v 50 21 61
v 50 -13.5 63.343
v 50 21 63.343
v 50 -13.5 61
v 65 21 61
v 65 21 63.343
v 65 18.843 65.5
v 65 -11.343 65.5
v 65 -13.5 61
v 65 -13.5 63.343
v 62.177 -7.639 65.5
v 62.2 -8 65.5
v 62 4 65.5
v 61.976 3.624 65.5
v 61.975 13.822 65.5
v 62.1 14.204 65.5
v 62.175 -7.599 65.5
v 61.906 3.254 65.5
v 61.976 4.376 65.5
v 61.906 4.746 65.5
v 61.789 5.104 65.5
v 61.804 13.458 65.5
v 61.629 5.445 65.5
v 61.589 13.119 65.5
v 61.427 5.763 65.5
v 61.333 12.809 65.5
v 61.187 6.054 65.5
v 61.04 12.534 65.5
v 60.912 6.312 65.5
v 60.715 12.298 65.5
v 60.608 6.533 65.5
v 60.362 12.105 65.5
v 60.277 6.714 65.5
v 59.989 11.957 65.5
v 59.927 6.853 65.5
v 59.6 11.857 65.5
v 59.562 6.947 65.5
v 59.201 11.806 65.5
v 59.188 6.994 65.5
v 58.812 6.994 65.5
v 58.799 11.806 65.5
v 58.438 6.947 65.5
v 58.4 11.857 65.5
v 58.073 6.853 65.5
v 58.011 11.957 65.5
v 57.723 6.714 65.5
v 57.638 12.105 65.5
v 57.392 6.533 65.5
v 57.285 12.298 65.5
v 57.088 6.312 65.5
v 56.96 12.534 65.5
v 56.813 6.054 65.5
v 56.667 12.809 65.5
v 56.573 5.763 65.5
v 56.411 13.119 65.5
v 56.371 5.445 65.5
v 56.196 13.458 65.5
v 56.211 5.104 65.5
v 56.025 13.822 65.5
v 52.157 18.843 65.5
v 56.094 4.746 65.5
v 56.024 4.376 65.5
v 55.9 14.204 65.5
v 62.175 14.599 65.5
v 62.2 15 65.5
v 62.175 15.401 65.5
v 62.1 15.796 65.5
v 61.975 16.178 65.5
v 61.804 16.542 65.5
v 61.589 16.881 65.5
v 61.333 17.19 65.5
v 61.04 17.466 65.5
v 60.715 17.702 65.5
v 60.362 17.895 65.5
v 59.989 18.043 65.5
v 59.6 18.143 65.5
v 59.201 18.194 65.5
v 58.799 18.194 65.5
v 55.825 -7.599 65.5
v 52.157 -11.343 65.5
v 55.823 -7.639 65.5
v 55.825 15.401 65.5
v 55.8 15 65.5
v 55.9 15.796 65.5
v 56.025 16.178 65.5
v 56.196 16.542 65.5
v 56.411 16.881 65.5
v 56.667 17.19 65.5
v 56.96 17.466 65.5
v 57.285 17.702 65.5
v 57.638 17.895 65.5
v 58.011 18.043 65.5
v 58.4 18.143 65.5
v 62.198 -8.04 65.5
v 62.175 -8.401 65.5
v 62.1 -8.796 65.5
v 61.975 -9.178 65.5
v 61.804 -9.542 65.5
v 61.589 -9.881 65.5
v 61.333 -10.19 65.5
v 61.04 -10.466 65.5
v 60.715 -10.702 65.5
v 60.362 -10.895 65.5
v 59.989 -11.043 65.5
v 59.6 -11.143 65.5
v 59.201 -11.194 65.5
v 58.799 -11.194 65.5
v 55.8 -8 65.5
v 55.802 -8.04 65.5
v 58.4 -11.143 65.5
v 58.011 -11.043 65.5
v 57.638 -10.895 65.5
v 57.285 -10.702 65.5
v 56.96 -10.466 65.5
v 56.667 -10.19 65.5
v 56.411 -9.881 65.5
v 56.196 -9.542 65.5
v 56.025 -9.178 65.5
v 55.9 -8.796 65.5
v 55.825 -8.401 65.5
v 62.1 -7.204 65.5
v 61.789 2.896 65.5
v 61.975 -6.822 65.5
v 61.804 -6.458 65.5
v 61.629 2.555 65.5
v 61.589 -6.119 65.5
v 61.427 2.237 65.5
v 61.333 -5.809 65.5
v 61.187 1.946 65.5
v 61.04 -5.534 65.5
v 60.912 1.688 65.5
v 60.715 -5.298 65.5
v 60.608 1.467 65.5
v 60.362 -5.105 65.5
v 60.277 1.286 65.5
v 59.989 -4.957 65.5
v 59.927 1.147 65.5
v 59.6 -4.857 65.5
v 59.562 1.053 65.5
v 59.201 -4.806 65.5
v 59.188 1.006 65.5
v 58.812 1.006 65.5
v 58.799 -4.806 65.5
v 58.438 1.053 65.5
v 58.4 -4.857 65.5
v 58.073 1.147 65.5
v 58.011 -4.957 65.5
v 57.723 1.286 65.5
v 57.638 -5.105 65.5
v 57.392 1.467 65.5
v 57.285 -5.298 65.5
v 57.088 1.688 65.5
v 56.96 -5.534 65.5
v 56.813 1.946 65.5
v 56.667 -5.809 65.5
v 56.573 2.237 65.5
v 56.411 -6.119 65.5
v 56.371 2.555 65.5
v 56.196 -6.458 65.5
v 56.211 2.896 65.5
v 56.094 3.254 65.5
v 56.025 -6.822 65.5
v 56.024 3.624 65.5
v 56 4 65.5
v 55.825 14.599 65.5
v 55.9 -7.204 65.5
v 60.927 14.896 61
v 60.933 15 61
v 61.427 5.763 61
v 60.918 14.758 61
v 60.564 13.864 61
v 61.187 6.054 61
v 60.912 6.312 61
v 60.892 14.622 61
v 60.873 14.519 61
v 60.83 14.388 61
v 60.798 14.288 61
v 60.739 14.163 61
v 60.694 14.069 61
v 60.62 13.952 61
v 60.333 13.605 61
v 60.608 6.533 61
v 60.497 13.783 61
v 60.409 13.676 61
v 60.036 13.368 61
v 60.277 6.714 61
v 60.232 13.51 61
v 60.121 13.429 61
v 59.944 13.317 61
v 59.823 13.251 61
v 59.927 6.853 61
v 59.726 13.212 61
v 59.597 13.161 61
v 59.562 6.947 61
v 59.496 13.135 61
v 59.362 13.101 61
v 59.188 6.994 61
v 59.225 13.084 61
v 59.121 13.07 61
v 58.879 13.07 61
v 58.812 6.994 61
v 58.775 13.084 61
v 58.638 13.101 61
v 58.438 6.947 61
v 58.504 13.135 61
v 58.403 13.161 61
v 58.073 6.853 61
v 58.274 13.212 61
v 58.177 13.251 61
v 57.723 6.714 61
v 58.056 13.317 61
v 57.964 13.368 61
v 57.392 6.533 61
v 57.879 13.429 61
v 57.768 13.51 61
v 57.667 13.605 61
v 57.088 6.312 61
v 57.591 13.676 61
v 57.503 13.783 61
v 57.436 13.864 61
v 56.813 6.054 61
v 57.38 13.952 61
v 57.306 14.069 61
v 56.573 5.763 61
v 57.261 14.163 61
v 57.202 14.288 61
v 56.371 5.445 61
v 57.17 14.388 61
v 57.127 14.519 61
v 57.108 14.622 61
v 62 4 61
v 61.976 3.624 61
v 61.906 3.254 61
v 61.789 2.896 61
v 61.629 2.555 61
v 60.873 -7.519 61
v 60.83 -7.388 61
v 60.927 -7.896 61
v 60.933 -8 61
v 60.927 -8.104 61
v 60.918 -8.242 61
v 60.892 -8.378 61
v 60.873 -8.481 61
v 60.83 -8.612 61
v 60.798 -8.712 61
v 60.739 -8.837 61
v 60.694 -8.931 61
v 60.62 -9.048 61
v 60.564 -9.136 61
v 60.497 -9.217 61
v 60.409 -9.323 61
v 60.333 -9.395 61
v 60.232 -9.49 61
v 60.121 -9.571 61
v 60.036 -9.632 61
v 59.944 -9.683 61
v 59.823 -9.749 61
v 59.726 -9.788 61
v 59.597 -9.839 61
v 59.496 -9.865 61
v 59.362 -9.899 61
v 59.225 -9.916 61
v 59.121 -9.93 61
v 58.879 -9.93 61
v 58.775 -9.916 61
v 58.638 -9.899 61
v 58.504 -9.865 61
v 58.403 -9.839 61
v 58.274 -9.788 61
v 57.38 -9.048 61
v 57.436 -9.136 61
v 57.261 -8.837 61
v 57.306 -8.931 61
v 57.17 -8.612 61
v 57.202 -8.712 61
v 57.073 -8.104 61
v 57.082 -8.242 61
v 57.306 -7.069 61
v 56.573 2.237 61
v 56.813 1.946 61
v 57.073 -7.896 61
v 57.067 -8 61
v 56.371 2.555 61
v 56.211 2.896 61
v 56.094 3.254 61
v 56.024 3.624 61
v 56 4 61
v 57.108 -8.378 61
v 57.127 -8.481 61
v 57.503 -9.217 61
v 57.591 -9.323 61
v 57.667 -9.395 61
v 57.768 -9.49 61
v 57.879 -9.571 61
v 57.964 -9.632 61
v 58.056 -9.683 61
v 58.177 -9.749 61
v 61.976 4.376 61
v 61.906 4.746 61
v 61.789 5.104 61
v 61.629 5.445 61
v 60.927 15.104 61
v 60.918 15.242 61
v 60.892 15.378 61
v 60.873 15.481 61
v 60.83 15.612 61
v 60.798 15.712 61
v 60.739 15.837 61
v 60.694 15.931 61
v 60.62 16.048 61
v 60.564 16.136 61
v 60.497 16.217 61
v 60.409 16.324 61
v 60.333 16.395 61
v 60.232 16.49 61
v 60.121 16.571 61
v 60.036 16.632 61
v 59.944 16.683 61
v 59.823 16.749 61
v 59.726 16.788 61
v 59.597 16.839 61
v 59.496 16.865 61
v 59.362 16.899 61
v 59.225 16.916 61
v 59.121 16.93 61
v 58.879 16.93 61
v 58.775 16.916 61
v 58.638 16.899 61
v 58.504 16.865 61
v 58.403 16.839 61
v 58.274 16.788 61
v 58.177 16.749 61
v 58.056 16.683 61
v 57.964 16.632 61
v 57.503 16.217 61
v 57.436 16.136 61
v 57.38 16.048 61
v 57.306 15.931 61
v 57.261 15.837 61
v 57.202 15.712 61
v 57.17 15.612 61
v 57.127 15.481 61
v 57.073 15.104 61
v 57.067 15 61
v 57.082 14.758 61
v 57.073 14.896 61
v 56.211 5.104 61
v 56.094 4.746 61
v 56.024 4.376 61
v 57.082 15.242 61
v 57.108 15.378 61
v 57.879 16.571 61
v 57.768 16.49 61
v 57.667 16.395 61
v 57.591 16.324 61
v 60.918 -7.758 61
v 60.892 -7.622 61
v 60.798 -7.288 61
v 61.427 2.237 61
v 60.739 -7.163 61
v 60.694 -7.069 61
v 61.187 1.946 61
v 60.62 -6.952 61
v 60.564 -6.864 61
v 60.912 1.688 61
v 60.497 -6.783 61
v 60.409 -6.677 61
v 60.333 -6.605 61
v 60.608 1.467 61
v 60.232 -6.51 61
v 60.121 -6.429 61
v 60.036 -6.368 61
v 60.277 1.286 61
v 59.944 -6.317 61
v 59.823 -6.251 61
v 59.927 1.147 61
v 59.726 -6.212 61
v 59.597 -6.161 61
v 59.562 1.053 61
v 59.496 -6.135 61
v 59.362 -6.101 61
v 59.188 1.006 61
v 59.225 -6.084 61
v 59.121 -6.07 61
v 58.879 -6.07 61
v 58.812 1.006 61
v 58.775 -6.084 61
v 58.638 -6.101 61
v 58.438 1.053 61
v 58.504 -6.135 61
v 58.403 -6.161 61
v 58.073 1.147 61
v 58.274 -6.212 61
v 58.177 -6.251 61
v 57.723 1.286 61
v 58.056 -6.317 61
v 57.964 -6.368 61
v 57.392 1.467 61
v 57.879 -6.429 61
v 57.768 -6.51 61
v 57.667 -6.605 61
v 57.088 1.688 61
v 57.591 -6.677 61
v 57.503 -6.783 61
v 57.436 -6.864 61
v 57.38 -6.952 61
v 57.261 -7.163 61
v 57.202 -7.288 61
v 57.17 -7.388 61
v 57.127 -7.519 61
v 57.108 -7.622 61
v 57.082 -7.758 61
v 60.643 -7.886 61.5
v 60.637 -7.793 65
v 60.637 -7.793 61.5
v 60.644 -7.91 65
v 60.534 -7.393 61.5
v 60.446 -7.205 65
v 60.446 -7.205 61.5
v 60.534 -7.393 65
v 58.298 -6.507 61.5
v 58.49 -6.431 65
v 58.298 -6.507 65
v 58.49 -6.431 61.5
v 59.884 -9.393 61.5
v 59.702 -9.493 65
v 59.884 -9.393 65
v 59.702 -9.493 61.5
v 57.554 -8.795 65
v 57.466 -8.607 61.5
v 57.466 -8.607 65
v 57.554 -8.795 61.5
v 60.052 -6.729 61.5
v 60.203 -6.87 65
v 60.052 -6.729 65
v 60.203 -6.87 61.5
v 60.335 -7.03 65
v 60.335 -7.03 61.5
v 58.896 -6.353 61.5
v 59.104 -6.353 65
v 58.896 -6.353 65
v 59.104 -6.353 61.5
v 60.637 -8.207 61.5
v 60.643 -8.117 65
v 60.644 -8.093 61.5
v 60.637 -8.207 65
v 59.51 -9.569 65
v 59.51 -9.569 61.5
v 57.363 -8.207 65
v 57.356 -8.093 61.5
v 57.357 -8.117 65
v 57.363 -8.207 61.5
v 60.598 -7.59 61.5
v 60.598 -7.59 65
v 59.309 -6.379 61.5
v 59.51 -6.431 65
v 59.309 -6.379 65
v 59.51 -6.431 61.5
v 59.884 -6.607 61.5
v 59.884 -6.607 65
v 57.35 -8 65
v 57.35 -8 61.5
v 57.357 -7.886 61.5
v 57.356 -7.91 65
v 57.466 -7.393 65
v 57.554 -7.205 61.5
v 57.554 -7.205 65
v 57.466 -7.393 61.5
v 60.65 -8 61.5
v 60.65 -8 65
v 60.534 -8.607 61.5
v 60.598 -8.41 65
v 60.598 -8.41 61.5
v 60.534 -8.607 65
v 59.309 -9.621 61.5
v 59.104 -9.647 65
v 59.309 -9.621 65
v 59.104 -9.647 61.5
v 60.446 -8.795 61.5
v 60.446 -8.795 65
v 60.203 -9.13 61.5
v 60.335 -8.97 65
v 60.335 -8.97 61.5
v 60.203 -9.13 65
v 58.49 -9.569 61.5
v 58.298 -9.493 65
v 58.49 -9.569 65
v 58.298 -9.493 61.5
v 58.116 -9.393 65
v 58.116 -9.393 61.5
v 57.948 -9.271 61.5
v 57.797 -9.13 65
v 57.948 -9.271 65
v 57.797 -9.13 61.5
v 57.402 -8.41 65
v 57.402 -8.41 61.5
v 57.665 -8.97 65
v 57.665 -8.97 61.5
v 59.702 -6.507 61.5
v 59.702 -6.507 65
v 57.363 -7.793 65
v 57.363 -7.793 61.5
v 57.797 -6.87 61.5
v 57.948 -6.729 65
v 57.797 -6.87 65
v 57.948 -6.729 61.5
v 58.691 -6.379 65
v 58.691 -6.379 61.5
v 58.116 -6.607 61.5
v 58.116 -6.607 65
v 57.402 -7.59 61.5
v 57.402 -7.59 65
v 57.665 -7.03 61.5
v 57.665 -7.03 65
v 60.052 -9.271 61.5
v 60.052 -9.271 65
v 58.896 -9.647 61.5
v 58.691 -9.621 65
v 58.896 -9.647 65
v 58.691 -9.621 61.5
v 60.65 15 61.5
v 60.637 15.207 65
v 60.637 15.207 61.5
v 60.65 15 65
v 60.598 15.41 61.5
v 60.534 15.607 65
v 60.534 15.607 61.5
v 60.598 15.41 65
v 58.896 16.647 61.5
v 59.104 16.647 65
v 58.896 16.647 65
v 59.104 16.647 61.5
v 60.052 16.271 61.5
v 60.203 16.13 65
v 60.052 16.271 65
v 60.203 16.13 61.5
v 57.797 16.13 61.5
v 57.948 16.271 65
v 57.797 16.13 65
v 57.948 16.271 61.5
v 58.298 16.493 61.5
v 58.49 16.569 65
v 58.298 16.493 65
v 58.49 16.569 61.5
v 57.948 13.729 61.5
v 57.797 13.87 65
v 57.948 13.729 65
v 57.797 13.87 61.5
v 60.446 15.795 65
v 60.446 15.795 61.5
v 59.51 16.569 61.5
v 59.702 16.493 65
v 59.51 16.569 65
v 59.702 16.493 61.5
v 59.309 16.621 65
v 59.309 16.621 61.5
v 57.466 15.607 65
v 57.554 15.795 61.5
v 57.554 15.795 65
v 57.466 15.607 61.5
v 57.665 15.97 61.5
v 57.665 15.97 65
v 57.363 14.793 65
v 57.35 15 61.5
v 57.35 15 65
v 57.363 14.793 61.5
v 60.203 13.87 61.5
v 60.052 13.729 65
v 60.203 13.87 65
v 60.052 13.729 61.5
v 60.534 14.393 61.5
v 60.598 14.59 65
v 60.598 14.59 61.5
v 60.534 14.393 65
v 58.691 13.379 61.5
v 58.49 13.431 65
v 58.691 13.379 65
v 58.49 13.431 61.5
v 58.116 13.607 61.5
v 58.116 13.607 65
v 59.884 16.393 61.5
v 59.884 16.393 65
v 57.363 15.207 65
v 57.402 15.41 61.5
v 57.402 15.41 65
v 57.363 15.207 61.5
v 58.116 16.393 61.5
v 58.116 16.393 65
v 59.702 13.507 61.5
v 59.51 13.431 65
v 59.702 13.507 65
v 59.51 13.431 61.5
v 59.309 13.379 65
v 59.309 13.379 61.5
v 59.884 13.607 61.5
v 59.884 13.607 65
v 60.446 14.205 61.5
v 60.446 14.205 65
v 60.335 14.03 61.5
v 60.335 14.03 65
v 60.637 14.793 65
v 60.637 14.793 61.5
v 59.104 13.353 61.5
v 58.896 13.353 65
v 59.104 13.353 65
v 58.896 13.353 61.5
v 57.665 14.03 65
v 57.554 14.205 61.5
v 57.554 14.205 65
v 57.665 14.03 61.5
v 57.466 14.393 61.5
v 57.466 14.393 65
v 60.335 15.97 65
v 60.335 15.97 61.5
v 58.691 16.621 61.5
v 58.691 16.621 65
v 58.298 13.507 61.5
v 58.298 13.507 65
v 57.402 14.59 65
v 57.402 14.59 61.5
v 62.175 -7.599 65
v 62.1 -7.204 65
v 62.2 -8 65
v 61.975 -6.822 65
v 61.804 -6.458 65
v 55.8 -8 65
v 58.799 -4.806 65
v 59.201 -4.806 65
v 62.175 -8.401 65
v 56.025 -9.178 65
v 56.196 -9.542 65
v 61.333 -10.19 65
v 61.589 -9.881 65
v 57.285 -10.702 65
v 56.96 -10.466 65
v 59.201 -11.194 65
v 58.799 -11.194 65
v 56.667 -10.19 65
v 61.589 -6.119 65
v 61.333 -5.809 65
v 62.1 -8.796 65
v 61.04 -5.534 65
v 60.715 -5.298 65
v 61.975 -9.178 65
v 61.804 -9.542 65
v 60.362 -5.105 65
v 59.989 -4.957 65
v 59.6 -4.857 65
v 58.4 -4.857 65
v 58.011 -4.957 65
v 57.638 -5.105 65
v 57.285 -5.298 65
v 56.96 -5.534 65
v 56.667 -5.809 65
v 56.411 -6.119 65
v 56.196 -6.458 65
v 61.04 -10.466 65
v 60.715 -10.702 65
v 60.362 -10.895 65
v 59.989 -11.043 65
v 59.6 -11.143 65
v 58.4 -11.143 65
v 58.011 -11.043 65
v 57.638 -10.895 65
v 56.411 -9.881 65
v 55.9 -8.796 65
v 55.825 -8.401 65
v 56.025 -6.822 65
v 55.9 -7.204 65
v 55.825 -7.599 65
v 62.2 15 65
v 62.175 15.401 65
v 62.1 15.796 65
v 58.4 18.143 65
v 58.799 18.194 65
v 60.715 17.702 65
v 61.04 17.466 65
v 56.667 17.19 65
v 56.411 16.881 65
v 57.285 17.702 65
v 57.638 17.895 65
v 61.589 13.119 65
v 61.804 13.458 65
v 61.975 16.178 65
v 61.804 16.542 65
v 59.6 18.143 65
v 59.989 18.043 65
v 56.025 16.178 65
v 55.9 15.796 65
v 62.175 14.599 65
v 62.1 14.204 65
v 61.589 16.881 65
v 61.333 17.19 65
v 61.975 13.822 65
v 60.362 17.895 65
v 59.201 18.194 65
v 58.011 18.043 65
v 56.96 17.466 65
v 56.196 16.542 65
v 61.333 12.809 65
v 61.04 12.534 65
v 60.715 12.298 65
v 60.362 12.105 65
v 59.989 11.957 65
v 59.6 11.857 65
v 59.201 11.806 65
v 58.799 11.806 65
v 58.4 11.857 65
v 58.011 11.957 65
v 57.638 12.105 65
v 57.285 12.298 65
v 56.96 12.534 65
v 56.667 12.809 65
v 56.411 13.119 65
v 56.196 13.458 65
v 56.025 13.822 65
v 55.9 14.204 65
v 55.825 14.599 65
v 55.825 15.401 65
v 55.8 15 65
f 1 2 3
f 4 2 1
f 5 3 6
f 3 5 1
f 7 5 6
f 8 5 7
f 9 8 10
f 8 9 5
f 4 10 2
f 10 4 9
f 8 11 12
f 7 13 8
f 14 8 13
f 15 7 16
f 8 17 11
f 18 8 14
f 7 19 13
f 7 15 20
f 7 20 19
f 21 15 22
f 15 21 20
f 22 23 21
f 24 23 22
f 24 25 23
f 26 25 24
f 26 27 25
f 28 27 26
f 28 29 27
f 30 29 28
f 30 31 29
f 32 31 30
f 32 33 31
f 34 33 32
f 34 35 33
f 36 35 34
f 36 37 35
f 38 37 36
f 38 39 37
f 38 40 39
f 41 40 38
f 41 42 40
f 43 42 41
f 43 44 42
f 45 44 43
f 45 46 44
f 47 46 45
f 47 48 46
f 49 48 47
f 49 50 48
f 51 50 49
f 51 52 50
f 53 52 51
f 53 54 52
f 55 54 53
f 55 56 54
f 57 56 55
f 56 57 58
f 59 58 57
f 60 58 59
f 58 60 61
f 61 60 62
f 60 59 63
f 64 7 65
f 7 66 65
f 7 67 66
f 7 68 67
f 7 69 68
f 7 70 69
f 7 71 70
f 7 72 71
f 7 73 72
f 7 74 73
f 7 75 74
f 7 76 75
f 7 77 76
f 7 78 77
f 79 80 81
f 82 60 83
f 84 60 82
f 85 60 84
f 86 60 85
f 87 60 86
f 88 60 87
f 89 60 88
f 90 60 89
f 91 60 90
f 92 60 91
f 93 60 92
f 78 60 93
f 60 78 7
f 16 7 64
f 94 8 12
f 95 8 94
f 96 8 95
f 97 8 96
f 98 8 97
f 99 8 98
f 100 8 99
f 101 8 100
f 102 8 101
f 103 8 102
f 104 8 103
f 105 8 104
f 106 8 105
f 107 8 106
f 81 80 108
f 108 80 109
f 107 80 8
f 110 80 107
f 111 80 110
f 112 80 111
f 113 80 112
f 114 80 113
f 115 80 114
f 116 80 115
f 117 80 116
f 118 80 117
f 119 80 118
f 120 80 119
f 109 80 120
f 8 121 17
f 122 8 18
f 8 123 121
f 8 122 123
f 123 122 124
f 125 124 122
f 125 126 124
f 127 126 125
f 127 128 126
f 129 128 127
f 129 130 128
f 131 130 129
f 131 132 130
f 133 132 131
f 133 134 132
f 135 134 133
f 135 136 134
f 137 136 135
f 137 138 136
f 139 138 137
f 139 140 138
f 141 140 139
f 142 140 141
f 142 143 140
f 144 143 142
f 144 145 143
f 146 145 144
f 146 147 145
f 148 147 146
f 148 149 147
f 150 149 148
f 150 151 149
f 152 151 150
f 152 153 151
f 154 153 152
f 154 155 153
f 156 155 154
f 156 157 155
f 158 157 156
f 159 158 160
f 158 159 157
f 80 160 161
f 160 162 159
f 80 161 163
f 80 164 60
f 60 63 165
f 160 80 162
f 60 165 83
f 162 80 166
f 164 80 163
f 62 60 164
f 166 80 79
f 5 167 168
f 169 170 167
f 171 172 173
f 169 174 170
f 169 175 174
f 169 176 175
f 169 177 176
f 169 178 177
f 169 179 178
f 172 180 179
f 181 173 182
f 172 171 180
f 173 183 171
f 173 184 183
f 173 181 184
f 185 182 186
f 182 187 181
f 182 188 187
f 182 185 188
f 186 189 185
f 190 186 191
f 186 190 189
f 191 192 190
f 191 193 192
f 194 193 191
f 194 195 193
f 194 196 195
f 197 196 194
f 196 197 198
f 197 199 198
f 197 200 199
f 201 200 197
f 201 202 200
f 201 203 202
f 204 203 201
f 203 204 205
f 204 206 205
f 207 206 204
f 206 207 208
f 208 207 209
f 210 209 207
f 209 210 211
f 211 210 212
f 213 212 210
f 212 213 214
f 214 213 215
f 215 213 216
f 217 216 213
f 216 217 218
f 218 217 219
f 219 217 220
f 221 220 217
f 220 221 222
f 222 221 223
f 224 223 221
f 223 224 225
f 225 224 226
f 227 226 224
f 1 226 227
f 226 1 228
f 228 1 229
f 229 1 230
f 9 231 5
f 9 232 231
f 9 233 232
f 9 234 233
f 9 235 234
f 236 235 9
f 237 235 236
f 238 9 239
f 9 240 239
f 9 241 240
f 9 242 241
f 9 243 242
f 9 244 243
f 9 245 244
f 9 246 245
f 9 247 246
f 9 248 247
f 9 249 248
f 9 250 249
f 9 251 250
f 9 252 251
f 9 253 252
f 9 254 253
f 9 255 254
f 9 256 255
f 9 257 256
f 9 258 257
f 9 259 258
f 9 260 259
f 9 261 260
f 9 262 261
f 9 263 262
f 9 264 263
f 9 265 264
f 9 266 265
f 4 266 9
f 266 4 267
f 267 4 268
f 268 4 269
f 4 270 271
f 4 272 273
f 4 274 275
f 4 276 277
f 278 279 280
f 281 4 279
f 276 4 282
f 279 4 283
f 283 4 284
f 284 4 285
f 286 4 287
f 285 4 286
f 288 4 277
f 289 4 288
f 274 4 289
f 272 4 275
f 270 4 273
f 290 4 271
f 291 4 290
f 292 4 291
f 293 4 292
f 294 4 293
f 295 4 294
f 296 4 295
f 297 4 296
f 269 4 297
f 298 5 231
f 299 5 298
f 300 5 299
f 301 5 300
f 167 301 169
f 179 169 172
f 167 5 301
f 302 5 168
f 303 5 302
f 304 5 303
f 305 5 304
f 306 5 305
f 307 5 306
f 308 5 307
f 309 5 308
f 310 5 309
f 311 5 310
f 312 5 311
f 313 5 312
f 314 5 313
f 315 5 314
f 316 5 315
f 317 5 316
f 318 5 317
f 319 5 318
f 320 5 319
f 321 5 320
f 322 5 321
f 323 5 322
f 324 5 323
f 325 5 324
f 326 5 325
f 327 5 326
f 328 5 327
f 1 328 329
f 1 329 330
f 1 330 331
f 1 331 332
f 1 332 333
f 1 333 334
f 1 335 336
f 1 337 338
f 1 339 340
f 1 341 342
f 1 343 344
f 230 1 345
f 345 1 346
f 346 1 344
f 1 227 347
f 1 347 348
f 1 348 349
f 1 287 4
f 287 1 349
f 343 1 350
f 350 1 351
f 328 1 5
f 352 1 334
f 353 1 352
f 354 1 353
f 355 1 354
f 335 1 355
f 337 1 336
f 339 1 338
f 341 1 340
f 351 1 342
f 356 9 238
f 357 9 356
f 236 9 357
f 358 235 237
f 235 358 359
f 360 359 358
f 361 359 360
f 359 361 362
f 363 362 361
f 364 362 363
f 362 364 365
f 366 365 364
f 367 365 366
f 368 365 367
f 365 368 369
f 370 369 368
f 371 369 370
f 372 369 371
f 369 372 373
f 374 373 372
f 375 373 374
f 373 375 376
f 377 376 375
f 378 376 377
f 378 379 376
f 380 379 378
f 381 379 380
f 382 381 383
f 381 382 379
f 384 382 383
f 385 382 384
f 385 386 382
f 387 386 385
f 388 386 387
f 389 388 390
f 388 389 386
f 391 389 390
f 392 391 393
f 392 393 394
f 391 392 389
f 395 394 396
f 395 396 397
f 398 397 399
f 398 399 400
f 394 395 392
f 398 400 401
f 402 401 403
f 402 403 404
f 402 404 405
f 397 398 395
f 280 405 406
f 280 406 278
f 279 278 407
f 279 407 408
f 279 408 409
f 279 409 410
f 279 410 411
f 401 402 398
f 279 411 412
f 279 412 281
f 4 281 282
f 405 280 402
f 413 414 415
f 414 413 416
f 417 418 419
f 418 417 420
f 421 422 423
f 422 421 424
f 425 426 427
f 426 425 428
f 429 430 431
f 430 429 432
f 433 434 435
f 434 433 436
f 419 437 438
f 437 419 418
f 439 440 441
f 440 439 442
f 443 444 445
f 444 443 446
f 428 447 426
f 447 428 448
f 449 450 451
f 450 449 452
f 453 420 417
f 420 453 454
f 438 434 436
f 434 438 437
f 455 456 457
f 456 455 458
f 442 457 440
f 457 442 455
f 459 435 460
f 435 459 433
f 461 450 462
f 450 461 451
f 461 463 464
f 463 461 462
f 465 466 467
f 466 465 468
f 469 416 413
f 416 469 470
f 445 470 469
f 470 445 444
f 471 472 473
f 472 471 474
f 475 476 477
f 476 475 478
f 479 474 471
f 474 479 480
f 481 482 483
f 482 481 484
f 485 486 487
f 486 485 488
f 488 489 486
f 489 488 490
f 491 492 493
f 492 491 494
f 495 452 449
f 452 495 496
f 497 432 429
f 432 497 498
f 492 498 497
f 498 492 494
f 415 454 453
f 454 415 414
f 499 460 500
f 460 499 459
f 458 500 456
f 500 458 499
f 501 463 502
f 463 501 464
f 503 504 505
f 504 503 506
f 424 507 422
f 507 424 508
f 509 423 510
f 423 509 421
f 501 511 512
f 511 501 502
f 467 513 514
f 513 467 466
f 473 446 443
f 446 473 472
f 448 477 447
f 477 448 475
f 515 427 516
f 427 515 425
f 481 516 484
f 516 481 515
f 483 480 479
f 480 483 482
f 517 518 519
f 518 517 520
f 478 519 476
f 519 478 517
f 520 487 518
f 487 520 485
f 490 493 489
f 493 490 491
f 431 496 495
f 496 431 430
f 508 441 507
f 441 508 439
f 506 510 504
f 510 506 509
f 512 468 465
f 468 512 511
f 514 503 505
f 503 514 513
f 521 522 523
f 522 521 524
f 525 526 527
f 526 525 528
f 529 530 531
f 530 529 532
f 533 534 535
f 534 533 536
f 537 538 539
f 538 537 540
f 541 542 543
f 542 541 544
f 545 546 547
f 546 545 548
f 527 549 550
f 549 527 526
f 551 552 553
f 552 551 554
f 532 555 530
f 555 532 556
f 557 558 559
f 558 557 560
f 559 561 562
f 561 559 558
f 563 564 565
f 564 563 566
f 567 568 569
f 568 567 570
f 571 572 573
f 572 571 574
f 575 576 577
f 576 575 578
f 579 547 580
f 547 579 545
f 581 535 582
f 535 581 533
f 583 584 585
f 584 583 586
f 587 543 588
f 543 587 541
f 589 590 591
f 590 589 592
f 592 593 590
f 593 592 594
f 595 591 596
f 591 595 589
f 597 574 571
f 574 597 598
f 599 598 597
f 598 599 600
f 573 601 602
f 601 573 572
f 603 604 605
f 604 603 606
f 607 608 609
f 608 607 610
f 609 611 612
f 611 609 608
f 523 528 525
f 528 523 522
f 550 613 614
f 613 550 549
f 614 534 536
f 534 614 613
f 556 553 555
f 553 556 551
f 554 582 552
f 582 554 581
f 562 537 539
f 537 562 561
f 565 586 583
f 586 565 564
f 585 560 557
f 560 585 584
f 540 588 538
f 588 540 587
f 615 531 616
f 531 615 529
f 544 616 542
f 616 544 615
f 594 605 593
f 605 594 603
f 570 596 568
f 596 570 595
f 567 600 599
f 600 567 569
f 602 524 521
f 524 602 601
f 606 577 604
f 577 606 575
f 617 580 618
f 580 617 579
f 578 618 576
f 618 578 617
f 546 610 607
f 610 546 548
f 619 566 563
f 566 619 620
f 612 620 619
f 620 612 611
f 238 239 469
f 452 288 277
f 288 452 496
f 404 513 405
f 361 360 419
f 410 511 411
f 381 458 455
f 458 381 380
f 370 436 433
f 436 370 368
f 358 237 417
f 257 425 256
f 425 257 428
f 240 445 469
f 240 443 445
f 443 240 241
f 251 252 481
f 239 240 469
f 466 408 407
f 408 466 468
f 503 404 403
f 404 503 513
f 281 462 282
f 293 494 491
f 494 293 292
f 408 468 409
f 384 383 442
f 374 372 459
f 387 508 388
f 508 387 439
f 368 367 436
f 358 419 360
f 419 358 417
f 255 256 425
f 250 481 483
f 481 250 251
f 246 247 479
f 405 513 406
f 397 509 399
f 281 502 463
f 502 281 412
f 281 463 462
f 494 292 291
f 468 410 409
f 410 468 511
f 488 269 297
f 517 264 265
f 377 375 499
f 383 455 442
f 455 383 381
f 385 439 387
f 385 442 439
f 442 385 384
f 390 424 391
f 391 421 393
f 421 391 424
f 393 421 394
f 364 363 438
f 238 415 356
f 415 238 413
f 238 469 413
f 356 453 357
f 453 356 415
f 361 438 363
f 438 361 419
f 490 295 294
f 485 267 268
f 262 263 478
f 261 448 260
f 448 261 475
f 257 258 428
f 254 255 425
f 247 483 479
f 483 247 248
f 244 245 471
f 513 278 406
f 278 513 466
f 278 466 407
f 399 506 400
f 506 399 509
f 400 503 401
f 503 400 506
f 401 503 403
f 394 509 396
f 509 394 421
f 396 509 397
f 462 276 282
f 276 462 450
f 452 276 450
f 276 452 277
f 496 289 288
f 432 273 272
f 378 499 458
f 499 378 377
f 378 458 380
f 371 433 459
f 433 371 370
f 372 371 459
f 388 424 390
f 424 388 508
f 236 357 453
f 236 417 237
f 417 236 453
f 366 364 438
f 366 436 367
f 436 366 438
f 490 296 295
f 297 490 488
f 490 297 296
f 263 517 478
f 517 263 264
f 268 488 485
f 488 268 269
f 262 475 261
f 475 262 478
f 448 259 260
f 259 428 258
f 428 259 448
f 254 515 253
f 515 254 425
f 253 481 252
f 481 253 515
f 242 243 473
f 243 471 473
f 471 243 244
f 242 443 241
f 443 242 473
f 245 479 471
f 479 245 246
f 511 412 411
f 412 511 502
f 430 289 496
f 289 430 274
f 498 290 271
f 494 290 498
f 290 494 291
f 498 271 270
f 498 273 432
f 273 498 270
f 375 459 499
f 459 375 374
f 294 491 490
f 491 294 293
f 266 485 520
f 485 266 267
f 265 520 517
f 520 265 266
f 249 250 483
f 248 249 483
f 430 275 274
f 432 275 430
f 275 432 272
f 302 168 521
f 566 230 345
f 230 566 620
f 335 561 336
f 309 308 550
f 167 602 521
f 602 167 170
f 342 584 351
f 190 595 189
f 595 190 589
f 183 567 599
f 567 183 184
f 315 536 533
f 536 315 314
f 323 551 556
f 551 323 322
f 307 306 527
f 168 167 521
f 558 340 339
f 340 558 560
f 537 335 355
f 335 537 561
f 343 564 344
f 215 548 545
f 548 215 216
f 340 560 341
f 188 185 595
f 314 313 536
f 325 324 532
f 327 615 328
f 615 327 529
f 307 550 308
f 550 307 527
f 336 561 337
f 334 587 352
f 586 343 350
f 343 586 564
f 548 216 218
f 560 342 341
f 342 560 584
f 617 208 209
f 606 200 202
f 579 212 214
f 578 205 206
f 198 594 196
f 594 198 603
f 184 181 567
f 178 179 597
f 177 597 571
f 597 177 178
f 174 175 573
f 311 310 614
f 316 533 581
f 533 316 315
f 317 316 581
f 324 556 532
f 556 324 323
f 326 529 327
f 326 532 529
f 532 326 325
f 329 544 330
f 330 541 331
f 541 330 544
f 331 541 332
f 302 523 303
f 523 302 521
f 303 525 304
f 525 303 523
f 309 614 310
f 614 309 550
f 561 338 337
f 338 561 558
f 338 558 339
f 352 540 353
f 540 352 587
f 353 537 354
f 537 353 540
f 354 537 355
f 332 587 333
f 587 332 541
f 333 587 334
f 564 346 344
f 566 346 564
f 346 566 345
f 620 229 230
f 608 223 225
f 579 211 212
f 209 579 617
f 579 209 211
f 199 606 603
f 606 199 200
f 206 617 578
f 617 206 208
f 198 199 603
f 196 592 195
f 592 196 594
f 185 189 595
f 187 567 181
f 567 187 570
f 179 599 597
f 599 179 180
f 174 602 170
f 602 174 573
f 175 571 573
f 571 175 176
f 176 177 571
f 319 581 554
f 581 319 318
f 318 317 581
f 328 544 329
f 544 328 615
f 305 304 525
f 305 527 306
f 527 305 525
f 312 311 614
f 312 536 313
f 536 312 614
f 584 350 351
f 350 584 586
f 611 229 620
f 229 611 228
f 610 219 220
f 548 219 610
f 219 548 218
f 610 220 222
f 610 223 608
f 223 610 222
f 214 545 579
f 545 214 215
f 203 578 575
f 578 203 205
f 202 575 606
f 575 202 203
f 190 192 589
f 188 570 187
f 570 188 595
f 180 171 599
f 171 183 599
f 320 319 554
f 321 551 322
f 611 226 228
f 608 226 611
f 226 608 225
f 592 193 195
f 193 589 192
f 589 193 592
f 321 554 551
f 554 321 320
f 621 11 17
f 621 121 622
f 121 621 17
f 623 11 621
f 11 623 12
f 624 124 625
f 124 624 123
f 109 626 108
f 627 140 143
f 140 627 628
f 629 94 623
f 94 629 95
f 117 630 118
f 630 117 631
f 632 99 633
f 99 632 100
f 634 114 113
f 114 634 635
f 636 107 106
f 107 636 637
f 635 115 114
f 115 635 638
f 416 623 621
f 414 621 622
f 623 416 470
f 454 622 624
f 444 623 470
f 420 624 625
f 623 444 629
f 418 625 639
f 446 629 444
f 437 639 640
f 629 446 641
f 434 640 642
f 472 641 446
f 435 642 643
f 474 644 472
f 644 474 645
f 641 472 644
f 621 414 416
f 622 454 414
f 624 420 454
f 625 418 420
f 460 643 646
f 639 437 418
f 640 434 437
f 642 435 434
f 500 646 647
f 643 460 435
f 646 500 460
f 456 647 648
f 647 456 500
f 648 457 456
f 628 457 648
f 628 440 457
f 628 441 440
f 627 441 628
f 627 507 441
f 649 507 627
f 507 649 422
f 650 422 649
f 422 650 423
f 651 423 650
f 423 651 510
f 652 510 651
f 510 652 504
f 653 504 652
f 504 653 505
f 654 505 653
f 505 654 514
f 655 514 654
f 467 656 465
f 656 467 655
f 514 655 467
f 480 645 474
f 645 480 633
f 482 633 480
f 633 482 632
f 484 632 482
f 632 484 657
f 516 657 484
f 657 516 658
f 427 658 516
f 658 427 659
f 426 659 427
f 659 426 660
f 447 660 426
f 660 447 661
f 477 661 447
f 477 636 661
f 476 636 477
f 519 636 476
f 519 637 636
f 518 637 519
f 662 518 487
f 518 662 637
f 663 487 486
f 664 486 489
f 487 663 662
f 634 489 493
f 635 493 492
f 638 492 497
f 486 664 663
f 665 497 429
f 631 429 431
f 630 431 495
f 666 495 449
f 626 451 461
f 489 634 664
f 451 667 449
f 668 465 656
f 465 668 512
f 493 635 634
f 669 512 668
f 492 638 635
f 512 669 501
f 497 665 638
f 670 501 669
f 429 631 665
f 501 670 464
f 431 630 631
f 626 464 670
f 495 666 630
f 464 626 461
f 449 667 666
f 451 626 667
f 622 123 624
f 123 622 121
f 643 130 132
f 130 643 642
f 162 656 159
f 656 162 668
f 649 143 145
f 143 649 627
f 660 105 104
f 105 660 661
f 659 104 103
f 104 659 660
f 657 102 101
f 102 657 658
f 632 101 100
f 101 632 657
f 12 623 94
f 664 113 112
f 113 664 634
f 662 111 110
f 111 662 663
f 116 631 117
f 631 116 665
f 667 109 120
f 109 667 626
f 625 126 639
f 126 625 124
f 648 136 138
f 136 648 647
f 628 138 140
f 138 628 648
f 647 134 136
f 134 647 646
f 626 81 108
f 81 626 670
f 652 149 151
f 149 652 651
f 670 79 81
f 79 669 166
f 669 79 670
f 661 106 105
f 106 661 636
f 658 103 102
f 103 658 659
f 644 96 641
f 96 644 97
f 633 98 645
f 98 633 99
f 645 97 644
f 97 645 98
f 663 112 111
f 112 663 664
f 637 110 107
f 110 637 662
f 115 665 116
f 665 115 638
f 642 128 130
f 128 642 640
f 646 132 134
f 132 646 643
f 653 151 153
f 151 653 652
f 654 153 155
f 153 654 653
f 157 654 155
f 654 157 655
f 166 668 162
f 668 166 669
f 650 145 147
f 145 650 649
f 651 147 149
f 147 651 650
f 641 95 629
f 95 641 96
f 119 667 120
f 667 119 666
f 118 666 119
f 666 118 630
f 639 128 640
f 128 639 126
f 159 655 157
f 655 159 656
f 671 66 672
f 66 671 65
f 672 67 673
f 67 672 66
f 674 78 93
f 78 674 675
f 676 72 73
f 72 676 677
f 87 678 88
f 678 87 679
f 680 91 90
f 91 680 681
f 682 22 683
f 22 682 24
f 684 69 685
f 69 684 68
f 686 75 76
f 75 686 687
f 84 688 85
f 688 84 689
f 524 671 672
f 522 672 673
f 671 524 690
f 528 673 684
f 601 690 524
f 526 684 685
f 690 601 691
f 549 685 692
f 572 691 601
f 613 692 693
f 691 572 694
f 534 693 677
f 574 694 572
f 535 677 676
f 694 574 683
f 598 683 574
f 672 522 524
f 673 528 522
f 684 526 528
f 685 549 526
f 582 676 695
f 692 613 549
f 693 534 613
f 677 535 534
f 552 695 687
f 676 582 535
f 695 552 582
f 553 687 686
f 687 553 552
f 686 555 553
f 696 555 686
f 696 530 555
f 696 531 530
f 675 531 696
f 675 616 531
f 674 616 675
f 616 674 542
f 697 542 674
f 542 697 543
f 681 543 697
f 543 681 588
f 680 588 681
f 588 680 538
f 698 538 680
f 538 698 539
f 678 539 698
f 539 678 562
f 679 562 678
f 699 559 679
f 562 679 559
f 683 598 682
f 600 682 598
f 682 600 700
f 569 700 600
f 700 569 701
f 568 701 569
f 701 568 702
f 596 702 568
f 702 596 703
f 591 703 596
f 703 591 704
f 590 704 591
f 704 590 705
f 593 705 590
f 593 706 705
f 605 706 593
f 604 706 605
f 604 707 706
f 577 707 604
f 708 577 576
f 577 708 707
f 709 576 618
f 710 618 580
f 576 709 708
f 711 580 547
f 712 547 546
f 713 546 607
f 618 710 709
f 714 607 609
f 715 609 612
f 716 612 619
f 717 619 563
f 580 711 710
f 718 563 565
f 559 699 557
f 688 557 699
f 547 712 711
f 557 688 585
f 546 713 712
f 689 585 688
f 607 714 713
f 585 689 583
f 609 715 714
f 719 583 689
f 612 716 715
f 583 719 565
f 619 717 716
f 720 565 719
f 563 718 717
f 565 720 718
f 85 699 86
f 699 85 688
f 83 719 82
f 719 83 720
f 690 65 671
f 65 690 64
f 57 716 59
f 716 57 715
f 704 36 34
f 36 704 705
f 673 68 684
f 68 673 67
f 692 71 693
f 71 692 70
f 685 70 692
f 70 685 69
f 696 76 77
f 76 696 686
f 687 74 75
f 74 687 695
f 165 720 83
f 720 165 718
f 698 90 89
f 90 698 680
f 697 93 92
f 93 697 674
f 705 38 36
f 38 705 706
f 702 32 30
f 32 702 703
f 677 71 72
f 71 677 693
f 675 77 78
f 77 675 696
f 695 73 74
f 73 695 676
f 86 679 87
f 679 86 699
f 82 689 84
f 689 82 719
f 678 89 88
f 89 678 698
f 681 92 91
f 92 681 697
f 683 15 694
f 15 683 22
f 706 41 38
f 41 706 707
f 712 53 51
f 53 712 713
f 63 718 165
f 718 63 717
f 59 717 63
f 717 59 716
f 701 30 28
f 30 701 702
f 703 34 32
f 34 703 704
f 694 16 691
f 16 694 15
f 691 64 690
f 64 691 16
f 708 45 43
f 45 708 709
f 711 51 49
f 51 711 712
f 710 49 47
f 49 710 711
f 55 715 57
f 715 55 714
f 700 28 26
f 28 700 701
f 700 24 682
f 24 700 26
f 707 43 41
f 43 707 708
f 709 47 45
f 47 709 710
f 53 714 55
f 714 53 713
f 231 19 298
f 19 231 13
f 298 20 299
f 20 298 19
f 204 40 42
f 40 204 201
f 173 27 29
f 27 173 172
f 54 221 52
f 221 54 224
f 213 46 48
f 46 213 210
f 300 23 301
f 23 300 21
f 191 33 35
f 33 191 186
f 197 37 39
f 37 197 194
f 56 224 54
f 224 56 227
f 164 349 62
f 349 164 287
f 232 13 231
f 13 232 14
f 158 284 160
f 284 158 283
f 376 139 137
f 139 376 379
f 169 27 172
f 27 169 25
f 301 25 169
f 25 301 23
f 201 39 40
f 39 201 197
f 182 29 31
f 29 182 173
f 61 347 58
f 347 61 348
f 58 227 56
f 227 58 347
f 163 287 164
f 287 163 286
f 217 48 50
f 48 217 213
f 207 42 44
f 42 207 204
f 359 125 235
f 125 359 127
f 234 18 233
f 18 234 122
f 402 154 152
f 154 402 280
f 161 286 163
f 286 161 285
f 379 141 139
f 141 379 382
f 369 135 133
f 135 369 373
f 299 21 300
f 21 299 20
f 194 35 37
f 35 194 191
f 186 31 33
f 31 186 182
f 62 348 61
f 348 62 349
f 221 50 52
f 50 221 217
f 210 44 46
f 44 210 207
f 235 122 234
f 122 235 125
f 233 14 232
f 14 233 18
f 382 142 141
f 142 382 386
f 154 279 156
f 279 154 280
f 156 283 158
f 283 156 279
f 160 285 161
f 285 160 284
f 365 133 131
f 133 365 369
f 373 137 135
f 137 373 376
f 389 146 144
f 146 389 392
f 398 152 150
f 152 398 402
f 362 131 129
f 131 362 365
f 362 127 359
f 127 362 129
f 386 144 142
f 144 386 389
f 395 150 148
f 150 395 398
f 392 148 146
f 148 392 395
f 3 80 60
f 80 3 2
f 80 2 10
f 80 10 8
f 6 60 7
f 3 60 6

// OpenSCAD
// PRUSA MMU2
// selector-front-plate
// GNU GPL v3
// Josef Průša <iam@josefprusa.cz> and contributors
// http://www.reprap.org/wiki/Prusa_Mendel
// http://prusamendel.org

module front_plate()
{
    difference()
    {
        translate([50,-65.5,-13.5]) cube([15,4.5,34.5]);
        
        // screws
        translate([59,-48,-8]) rotate([90,0,0]) cylinder(r=1.65, h=30, $fn=50);
        translate([59,-48,15]) rotate([90,0,0]) cylinder(r=1.65, h=30, $fn=50);
        
        translate([59,-60,-8]) rotate([90,0,0]) cylinder(r2=1.65,r1=2.5, h=1.5, $fn=50);
        translate([59,-60,15]) rotate([90,0,0]) cylinder(r2=1.65,r1=2.5, h=1.5, $fn=50);
        
        translate([59,-65,-8]) rotate([90,0,0]) cylinder(r=3.2, h=5, $fn=50);
        translate([59,-65,15]) rotate([90,0,0]) cylinder(r=3.2, h=5, $fn=50);
        
        // brass insert
        translate([59,-60,4]) rotate([90,0,0]) cylinder(r=3, h=6, $fn=50); 
        translate([59,-63,4]) rotate([90,0,0]) cylinder(r2=3, r1=3, h=2, $fn=50); 
        //translate([59,-59.5-1,4]) rotate([90,0,0]) cylinder(r1=5, r2=3.5, h=2, $fn=50); 
        //translate([59,-64,4]) rotate([90,0,0]) cylinder(r1=5,r2=5.5, h=2, $fn=50); 
        
        // edges
        translate([45,-64,-15]) rotate([0,0,-45]) cube([15,4,40]);
        translate([45,-64,-18.5]) rotate([45,0,0]) cube([25,4,42]);
        translate([45,-71,19]) rotate([-45,0,0]) cube([25,4,40]);
        
    }
}

rotate([-90,0,0]) 
front_plate();
